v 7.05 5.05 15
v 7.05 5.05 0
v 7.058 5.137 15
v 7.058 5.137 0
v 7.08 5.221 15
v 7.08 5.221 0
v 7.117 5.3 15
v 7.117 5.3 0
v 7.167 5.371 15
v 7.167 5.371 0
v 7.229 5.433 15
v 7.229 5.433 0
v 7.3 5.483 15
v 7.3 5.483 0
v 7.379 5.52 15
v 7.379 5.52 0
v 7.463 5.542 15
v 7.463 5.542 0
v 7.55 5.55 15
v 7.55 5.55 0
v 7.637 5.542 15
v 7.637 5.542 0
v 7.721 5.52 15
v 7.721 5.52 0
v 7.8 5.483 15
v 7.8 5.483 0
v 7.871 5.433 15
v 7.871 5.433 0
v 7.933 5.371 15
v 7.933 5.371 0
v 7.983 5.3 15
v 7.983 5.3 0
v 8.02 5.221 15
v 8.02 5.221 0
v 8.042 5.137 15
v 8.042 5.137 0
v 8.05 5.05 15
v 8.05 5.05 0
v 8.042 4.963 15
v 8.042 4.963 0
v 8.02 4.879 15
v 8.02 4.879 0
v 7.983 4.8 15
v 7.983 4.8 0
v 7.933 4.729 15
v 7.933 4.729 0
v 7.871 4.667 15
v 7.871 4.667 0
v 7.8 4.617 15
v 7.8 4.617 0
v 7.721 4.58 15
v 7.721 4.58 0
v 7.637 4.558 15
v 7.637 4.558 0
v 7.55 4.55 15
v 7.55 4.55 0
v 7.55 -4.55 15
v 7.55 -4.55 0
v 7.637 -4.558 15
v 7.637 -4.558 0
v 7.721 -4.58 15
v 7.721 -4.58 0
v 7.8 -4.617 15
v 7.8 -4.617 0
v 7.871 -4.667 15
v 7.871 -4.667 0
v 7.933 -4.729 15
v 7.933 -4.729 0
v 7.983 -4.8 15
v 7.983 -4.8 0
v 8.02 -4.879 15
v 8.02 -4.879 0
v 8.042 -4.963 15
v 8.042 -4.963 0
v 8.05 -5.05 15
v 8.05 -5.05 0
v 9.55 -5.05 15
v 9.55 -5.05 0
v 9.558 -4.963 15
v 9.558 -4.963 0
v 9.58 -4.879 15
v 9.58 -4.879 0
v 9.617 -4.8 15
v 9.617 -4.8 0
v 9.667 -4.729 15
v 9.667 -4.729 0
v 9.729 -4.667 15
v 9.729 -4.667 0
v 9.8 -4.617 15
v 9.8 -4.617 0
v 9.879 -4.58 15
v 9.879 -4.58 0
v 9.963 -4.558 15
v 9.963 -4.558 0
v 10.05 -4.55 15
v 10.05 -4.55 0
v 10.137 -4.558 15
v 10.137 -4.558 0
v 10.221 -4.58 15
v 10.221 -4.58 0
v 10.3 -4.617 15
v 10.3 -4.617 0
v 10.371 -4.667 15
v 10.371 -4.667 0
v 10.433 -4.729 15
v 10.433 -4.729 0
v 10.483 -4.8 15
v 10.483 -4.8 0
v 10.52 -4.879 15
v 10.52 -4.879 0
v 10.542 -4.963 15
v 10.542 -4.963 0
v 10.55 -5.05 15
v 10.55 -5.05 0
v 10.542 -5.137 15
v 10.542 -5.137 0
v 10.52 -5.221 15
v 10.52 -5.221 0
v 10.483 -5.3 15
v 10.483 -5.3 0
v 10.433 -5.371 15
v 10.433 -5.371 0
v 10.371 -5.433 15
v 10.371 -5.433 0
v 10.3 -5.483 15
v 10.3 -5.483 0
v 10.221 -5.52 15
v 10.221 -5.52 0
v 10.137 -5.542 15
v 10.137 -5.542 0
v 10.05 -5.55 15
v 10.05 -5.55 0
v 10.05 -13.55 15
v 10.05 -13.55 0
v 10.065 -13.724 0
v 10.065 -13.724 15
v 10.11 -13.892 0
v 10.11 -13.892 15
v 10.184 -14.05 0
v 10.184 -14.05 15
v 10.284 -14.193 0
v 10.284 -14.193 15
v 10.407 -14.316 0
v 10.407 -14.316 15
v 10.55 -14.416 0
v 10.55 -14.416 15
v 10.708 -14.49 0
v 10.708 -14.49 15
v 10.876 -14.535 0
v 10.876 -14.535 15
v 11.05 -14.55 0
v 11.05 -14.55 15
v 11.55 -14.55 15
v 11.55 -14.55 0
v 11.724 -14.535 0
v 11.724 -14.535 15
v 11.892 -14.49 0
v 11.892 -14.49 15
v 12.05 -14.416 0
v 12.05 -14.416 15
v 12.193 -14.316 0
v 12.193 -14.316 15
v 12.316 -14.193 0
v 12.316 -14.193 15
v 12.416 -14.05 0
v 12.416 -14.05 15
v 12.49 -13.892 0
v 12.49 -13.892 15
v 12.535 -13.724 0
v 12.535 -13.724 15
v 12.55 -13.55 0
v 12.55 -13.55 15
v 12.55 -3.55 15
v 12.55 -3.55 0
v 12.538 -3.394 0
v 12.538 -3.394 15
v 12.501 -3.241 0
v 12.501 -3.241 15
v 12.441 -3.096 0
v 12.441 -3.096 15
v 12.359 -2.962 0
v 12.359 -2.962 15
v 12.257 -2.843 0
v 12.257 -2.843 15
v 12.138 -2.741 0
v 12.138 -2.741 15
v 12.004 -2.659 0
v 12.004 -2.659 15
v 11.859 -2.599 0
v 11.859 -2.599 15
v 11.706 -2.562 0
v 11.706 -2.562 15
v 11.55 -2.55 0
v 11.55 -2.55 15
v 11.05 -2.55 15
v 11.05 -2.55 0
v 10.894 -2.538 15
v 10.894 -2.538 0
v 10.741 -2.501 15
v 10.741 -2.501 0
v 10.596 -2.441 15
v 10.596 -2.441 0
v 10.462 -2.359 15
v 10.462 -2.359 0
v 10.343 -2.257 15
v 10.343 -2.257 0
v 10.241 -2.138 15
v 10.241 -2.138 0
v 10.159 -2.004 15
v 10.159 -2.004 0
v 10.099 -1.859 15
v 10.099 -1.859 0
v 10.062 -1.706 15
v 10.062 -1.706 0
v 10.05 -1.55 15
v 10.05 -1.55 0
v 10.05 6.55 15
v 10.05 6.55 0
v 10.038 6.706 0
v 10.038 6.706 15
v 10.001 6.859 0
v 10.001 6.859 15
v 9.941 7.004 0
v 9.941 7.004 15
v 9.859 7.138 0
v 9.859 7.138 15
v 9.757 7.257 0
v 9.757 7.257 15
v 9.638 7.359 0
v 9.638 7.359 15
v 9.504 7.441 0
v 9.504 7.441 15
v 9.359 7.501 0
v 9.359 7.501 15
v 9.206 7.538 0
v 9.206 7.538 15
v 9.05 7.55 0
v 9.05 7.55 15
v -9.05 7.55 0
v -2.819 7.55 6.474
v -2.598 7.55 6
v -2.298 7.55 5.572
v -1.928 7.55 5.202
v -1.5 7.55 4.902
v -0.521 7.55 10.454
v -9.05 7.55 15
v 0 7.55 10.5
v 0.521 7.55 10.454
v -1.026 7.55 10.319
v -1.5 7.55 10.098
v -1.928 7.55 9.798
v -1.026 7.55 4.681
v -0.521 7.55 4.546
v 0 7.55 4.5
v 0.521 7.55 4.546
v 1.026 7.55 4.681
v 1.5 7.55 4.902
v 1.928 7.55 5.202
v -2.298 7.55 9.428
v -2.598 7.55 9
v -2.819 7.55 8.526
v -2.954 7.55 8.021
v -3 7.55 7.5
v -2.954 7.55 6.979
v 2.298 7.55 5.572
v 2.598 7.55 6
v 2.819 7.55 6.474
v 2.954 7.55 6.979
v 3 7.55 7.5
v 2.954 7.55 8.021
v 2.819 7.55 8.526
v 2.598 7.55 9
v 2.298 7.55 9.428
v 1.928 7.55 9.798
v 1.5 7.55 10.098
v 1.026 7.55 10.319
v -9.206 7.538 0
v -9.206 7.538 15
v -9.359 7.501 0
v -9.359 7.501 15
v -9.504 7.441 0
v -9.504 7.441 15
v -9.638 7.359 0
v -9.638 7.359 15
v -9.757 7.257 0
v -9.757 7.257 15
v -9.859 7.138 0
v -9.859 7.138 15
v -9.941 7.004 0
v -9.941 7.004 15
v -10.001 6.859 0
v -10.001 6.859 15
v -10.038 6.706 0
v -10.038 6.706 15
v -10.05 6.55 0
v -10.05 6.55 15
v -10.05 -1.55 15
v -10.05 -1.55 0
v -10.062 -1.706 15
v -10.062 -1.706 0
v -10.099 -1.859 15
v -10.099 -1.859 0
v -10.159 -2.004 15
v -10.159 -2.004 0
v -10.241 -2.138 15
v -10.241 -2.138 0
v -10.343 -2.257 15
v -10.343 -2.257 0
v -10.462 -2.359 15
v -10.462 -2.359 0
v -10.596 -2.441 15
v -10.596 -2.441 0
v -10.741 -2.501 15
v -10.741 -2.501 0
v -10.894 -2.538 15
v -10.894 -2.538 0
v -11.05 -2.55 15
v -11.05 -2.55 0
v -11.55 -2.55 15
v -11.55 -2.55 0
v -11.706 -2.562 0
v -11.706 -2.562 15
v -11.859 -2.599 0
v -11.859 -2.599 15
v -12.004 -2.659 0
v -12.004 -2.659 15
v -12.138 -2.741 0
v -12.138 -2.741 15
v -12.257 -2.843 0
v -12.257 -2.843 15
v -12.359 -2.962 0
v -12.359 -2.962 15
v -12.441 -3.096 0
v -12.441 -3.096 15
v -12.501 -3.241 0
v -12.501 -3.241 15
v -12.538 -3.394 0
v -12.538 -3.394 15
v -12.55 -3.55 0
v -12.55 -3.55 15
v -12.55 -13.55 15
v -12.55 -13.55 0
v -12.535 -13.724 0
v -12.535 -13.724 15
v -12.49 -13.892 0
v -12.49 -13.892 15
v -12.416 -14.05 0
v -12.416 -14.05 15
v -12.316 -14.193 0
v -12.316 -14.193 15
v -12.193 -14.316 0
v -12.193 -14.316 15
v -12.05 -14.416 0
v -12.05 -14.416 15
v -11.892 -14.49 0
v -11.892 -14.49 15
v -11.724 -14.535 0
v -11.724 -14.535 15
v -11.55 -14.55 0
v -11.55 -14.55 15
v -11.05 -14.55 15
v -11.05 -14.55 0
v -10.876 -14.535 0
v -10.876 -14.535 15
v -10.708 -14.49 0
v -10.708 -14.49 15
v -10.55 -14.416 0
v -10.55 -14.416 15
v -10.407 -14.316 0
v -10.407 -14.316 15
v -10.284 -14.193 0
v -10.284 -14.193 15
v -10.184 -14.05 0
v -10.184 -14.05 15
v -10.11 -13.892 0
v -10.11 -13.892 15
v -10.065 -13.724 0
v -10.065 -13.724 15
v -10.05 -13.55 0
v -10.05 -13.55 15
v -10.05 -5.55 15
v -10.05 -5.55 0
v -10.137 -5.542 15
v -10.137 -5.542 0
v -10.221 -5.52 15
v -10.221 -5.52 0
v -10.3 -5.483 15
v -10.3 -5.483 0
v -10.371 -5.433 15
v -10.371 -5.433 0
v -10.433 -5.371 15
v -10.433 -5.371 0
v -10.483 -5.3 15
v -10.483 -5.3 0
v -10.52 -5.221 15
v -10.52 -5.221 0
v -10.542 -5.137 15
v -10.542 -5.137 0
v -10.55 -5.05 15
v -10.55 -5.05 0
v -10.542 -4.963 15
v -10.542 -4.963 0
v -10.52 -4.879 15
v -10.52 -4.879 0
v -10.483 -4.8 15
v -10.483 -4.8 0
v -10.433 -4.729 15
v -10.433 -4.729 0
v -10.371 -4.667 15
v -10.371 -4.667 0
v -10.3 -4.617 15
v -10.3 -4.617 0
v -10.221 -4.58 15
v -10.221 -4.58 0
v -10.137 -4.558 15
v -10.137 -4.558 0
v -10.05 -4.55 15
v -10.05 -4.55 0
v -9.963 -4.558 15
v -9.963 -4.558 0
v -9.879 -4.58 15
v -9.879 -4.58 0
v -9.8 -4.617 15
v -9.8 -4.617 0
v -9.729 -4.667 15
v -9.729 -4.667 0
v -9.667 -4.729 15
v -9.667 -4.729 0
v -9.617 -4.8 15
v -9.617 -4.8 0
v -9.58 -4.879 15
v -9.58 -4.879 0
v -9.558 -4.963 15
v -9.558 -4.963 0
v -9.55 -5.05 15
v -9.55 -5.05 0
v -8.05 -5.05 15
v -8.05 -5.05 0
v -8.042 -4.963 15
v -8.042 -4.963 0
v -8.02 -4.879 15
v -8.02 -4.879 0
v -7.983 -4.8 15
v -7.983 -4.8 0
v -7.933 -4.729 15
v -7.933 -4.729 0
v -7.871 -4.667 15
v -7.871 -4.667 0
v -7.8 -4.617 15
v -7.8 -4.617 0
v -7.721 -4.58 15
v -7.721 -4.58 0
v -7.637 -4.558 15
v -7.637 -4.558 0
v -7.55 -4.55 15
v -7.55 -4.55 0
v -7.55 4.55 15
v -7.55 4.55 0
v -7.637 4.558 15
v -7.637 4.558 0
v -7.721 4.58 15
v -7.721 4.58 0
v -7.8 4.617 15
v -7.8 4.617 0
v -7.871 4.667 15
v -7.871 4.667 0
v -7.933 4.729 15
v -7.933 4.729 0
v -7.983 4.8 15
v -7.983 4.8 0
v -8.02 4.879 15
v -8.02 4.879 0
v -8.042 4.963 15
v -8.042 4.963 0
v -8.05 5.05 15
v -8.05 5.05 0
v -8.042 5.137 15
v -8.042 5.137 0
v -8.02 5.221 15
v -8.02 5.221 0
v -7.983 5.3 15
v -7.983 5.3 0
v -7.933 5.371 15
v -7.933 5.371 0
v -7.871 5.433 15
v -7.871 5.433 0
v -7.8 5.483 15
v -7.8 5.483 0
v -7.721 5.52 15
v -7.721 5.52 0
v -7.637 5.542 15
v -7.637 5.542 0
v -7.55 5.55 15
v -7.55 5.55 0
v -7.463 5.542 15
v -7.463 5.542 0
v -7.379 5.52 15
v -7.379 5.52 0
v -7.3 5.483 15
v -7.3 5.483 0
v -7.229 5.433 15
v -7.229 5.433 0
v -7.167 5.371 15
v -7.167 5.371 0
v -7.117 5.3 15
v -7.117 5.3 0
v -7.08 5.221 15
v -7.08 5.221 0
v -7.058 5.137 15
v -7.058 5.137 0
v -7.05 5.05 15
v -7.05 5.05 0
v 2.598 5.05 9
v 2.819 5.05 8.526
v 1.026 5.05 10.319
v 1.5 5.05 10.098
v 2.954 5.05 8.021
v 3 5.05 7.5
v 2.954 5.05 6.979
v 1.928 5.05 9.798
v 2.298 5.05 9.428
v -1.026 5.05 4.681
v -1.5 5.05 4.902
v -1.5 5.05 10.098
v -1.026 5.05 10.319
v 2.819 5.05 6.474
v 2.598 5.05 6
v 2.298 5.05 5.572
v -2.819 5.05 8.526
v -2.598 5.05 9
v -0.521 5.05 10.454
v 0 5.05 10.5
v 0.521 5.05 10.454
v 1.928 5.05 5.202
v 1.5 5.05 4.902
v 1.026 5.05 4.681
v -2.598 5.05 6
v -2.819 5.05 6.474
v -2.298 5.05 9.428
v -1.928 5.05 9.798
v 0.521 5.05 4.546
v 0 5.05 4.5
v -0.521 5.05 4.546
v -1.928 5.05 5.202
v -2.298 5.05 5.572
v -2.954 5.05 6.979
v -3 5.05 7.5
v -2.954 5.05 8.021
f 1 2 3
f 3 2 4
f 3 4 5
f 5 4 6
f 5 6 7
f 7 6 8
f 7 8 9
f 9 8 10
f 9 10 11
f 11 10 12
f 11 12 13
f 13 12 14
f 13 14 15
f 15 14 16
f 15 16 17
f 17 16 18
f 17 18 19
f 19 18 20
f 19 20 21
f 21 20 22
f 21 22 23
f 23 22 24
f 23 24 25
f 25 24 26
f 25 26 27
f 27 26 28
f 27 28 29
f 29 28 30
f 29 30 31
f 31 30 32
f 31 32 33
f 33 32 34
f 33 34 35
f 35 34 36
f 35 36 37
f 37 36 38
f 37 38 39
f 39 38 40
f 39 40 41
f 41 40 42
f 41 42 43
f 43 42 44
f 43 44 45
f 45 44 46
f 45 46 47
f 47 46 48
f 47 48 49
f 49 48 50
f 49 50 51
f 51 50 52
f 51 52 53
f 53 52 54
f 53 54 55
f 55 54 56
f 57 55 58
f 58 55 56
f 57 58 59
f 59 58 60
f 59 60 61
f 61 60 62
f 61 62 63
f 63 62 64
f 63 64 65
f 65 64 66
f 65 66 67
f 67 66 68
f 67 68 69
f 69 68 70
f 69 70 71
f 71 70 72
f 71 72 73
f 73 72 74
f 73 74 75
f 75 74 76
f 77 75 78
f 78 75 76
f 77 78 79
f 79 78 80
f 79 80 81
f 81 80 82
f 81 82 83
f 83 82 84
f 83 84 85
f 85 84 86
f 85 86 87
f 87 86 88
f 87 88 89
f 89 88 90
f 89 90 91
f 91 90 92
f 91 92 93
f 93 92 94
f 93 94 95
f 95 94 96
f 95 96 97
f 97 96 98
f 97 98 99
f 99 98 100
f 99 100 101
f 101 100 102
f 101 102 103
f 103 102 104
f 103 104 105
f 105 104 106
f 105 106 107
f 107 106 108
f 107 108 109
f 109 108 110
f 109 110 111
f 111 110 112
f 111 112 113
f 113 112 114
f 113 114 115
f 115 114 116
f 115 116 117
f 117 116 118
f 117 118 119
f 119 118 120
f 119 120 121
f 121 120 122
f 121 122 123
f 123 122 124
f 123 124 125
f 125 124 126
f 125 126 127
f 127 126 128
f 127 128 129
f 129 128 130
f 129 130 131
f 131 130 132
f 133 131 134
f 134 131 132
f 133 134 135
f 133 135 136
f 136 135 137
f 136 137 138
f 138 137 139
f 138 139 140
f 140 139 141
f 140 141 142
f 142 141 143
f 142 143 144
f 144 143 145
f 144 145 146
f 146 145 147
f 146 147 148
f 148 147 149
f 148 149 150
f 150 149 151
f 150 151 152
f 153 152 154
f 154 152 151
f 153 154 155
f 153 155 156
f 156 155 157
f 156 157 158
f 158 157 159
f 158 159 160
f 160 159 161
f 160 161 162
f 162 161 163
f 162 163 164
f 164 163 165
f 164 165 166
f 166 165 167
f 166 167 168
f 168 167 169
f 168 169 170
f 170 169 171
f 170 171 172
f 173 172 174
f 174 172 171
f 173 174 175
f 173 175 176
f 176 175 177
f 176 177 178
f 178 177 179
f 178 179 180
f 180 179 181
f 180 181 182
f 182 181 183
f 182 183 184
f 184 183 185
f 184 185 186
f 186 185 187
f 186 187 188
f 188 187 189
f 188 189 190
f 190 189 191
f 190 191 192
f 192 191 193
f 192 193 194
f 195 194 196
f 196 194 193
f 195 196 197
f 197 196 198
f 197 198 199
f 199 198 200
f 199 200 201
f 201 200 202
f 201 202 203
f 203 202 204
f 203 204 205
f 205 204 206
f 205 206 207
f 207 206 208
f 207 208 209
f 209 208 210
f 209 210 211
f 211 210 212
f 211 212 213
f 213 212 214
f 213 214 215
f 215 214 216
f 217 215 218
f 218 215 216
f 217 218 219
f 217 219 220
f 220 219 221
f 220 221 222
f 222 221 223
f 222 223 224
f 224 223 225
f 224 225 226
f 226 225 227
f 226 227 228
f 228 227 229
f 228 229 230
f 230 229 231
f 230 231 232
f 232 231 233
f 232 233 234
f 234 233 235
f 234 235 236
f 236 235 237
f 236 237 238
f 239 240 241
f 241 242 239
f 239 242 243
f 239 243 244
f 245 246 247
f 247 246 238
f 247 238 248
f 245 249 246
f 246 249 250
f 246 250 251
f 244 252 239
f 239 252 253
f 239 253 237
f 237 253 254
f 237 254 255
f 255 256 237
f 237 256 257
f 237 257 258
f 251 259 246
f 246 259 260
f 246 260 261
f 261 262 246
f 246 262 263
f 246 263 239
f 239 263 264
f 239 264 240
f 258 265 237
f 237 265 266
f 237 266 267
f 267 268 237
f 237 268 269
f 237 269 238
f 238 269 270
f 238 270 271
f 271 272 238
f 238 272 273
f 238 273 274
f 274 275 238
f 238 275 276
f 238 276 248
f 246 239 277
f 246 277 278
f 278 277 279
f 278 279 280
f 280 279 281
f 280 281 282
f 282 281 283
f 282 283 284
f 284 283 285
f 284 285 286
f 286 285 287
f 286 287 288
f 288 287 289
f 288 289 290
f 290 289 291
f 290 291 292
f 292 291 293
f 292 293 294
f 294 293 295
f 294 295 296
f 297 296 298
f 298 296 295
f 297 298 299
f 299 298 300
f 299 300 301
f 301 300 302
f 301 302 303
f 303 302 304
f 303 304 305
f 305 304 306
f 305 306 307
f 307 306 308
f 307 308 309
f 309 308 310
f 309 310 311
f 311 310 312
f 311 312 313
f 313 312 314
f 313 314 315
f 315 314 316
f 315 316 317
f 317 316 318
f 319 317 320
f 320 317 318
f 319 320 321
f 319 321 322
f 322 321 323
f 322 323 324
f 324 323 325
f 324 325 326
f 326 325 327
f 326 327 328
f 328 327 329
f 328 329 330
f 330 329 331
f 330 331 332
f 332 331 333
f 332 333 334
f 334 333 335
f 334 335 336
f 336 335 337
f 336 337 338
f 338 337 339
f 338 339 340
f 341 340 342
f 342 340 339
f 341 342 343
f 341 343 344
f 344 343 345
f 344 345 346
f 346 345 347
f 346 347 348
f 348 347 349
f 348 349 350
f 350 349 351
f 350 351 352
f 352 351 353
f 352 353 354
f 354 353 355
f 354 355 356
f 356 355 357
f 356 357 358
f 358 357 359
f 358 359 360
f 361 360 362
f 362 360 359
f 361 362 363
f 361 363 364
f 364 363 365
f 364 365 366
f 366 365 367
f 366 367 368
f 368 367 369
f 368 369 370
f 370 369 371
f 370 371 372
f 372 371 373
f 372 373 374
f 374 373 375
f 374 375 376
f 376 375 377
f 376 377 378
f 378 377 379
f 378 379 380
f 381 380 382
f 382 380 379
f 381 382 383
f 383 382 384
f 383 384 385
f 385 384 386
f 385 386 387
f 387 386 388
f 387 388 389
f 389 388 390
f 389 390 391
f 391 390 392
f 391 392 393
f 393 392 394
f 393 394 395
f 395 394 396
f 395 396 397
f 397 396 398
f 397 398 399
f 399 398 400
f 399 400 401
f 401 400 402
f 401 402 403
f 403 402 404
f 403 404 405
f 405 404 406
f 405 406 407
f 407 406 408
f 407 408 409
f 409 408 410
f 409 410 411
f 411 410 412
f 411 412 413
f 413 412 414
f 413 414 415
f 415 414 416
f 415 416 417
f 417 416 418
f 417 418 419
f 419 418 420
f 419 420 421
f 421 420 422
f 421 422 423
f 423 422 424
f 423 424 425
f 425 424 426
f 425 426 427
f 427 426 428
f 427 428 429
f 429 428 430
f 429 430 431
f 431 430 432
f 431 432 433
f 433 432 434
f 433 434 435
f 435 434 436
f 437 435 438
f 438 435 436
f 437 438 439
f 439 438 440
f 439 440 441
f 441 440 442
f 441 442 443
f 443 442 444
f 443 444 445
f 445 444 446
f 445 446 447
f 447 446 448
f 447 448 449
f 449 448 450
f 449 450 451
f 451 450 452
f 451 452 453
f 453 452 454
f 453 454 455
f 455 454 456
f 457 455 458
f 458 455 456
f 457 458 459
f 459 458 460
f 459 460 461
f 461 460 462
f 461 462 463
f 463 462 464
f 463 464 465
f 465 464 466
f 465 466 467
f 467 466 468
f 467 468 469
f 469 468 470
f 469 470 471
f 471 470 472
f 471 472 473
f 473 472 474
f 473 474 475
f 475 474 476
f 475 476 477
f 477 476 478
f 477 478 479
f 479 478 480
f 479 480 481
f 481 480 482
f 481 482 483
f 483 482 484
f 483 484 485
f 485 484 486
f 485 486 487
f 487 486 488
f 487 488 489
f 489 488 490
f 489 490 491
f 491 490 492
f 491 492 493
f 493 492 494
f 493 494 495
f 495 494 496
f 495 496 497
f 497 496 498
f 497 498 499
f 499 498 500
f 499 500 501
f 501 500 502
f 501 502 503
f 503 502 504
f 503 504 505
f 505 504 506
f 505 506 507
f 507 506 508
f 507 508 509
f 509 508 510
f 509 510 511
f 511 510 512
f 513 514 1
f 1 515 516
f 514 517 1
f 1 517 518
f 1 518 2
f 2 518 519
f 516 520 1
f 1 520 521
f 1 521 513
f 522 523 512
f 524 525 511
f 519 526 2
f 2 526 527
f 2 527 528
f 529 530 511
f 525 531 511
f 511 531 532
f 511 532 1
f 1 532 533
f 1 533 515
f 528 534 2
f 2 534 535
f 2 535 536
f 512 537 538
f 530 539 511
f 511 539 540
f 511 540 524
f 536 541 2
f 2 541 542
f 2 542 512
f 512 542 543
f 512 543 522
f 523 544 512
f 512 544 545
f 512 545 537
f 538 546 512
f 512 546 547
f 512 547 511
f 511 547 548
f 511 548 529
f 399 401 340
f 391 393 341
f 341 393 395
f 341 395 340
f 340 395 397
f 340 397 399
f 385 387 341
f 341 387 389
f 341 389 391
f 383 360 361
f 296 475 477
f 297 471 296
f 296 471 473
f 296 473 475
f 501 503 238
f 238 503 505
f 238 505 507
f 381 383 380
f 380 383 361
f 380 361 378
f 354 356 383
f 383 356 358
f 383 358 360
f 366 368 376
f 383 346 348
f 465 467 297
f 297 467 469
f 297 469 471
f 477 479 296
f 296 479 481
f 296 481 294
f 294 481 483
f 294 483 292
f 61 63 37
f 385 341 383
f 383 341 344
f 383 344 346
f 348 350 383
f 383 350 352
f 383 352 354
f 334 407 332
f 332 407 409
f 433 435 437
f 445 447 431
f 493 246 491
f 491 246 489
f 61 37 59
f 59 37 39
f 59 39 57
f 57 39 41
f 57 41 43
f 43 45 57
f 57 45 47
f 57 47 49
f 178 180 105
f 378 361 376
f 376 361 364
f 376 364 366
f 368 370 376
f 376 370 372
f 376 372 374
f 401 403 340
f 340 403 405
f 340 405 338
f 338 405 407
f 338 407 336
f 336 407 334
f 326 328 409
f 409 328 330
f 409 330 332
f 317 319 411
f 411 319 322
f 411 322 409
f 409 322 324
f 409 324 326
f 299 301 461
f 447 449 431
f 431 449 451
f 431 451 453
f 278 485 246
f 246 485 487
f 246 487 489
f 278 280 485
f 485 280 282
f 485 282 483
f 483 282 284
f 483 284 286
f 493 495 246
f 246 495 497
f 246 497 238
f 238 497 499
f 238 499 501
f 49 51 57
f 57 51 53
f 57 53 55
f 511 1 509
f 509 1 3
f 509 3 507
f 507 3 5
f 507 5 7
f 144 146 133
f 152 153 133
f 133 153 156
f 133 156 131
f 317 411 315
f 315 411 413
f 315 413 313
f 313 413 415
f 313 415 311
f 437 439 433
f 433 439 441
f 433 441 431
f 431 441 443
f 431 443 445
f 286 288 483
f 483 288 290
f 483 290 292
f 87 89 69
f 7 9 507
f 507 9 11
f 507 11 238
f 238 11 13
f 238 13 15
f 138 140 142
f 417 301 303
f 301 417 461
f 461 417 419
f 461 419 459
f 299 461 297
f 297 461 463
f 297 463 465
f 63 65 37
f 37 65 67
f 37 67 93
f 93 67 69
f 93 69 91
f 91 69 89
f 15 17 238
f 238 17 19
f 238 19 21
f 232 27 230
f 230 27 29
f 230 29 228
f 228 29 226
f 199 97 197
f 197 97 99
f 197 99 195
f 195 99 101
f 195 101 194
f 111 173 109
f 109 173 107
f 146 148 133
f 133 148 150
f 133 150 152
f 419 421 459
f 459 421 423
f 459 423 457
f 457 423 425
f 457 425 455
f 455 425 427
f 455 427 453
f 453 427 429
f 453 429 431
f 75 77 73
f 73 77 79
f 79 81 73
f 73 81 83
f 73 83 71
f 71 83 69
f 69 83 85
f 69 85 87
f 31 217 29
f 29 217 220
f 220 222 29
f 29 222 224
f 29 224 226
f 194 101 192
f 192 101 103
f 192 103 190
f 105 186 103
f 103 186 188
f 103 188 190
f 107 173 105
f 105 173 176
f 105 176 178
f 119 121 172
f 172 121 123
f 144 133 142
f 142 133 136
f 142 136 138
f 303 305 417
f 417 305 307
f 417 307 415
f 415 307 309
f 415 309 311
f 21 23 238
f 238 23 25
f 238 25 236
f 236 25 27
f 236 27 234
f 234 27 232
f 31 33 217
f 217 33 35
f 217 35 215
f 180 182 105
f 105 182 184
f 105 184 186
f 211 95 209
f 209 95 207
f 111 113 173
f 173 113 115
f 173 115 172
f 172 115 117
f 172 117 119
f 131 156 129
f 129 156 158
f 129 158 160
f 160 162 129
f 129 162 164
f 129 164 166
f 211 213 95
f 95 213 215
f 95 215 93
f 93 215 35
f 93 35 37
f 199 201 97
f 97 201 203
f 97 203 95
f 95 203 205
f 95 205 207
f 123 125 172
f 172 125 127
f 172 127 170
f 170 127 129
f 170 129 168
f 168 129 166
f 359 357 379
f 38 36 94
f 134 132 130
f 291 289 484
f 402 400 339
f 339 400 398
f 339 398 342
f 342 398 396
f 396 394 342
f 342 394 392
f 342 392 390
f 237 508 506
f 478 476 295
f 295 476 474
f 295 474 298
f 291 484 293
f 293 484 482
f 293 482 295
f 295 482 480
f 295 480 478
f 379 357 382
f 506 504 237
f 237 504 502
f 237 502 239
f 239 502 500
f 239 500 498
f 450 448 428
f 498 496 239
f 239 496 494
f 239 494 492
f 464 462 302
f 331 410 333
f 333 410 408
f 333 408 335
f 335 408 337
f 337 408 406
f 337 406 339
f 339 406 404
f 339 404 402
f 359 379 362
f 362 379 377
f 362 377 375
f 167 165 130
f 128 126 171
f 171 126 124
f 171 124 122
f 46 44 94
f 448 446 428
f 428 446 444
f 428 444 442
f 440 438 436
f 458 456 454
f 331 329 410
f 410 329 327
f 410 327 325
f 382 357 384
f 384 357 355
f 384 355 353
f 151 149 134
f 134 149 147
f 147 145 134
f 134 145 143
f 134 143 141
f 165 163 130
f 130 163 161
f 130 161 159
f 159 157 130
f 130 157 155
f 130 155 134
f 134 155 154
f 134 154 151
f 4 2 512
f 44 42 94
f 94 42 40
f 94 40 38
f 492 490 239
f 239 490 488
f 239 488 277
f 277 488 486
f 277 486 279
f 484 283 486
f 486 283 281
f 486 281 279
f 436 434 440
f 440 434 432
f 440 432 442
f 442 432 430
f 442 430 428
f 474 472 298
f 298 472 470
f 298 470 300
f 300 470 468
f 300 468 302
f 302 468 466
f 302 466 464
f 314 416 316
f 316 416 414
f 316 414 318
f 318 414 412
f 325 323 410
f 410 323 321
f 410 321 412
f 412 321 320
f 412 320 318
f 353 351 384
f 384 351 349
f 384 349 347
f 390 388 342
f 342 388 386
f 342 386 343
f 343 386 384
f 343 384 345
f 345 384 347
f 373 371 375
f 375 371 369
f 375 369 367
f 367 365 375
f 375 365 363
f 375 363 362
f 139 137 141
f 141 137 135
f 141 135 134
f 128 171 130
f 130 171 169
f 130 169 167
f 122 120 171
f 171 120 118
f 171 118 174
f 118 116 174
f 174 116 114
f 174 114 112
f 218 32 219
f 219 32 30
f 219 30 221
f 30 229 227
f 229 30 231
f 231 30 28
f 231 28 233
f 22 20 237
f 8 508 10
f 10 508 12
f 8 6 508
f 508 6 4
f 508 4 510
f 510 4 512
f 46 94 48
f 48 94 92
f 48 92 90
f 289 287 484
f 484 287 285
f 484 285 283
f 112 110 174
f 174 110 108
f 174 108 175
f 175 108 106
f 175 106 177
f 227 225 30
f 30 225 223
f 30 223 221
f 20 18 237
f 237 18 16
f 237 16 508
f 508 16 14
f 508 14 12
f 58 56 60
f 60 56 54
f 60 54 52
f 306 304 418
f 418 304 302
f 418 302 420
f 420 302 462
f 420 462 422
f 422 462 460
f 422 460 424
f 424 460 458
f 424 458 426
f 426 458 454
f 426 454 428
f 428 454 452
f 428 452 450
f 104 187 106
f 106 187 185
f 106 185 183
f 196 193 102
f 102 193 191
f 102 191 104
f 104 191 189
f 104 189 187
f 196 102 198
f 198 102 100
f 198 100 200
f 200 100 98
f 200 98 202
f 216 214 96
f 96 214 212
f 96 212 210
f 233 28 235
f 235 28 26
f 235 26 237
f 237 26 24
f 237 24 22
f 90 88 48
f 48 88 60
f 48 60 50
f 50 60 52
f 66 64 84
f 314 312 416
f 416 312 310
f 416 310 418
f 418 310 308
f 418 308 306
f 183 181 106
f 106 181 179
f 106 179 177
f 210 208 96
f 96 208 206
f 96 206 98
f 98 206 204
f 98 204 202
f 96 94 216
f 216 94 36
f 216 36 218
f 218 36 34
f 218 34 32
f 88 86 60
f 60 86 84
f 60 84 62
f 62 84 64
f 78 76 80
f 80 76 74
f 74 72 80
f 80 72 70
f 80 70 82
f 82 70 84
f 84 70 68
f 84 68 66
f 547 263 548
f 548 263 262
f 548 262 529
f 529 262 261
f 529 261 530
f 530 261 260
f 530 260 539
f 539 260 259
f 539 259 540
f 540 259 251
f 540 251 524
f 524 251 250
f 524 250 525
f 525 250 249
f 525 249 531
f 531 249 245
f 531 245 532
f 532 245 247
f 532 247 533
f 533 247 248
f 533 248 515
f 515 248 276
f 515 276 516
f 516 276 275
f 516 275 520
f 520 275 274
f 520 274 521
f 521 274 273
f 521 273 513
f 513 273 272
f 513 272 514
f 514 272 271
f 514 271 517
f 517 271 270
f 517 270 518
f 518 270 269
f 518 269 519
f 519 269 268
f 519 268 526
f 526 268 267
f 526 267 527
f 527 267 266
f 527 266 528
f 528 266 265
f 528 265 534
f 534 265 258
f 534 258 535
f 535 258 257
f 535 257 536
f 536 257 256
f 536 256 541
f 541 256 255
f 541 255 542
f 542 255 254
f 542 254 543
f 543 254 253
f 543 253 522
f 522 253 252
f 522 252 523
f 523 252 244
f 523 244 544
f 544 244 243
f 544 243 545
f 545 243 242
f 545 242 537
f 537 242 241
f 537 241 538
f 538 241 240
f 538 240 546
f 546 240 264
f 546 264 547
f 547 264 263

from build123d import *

# Parameters (mm, degrees)
SALIENTE_EXTRUIR1_DEPTH = 15
CROQUIS2_R              = 3
CORTAR_EXTRUIR1_DEPTH   = 20


with BuildPart() as part:
    # Croquis1 → Saliente-Extruir1 (new body)
    with BuildSketch(Plane.XY):
        with BuildLine():
            Line((-9.55, -5.05), (-8.05, -5.05))
            ThreePointArc((-8.05, -5.05), (-7.903553391, -4.696446609), (-7.55, -4.55))
            Line((-7.55, -4.55), (-7.55, 4.55))
            ThreePointArc((-7.55, 4.55), (-7.903553391, 5.403553391), (-7.05, 5.05))
            Line((-7.05, 5.05), (7.05, 5.05))
            ThreePointArc((7.05, 5.05), (7.903553391, 5.403553391), (7.55, 4.55))
            Line((7.55, 4.55), (7.55, -4.55))
            ThreePointArc((7.55, -4.55), (7.903553391, -4.696446609), (8.05, -5.05))
            Line((8.05, -5.05), (9.55, -5.05))
            ThreePointArc((9.55, -5.05), (10.403553391, -4.696446609), (10.05, -5.55))
            Line((10.05, -5.55), (10.05, -13.55))
            ThreePointArc((10.05, -13.55), (10.342893219, -14.257106781), (11.05, -14.55))
            Line((11.05, -14.55), (11.55, -14.55))
            ThreePointArc((11.55, -14.55), (12.257106781, -14.257106781), (12.55, -13.55))
            Line((12.55, -13.55), (12.55, -3.55))
            ThreePointArc((12.55, -3.55), (12.257106781, -2.842893219), (11.55, -2.55))
            Line((11.55, -2.55), (11.05, -2.55))
            ThreePointArc((11.05, -2.55), (10.342893219, -2.257106781), (10.05, -1.55))
            Line((10.05, -1.55), (10.05, 6.55))
            ThreePointArc((10.05, 6.55), (9.757106781, 7.257106781), (9.05, 7.55))
            Line((9.05, 7.55), (-9.05, 7.55))
            ThreePointArc((-9.05, 7.55), (-9.757106781, 7.257106781), (-10.05, 6.55))
            Line((-10.05, 6.55), (-10.05, -1.55))
            ThreePointArc((-10.05, -1.55), (-10.342893219, -2.257106781), (-11.05, -2.55))
            Line((-11.05, -2.55), (-11.55, -2.55))
            ThreePointArc((-11.55, -2.55), (-12.257106781, -2.842893219), (-12.55, -3.55))
            Line((-12.55, -3.55), (-12.55, -13.55))
            ThreePointArc((-12.55, -13.55), (-12.257106781, -14.257106781), (-11.55, -14.55))
            Line((-11.55, -14.55), (-11.05, -14.55))
            ThreePointArc((-11.05, -14.55), (-10.342893219, -14.257106781), (-10.05, -13.55))
            Line((-10.05, -13.55), (-10.05, -5.55))
            ThreePointArc((-10.05, -5.55), (-10.403553391, -4.696446609), (-9.55, -5.05))
        make_face()
    extrude(amount=SALIENTE_EXTRUIR1_DEPTH)

    # Croquis2 → Cortar-Extruir1 (cut)
    with BuildSketch(Plane(origin=(0, 7.55, 0), x_dir=(1, 0, 0), z_dir=(0, 1, 0))):
        with Locations(Location((0, -7.5, 0), (0, 0, 180))):
            Circle(CROQUIS2_R)
    extrude(amount=-CORTAR_EXTRUIR1_DEPTH, mode=Mode.SUBTRACT)


solid = part.part
